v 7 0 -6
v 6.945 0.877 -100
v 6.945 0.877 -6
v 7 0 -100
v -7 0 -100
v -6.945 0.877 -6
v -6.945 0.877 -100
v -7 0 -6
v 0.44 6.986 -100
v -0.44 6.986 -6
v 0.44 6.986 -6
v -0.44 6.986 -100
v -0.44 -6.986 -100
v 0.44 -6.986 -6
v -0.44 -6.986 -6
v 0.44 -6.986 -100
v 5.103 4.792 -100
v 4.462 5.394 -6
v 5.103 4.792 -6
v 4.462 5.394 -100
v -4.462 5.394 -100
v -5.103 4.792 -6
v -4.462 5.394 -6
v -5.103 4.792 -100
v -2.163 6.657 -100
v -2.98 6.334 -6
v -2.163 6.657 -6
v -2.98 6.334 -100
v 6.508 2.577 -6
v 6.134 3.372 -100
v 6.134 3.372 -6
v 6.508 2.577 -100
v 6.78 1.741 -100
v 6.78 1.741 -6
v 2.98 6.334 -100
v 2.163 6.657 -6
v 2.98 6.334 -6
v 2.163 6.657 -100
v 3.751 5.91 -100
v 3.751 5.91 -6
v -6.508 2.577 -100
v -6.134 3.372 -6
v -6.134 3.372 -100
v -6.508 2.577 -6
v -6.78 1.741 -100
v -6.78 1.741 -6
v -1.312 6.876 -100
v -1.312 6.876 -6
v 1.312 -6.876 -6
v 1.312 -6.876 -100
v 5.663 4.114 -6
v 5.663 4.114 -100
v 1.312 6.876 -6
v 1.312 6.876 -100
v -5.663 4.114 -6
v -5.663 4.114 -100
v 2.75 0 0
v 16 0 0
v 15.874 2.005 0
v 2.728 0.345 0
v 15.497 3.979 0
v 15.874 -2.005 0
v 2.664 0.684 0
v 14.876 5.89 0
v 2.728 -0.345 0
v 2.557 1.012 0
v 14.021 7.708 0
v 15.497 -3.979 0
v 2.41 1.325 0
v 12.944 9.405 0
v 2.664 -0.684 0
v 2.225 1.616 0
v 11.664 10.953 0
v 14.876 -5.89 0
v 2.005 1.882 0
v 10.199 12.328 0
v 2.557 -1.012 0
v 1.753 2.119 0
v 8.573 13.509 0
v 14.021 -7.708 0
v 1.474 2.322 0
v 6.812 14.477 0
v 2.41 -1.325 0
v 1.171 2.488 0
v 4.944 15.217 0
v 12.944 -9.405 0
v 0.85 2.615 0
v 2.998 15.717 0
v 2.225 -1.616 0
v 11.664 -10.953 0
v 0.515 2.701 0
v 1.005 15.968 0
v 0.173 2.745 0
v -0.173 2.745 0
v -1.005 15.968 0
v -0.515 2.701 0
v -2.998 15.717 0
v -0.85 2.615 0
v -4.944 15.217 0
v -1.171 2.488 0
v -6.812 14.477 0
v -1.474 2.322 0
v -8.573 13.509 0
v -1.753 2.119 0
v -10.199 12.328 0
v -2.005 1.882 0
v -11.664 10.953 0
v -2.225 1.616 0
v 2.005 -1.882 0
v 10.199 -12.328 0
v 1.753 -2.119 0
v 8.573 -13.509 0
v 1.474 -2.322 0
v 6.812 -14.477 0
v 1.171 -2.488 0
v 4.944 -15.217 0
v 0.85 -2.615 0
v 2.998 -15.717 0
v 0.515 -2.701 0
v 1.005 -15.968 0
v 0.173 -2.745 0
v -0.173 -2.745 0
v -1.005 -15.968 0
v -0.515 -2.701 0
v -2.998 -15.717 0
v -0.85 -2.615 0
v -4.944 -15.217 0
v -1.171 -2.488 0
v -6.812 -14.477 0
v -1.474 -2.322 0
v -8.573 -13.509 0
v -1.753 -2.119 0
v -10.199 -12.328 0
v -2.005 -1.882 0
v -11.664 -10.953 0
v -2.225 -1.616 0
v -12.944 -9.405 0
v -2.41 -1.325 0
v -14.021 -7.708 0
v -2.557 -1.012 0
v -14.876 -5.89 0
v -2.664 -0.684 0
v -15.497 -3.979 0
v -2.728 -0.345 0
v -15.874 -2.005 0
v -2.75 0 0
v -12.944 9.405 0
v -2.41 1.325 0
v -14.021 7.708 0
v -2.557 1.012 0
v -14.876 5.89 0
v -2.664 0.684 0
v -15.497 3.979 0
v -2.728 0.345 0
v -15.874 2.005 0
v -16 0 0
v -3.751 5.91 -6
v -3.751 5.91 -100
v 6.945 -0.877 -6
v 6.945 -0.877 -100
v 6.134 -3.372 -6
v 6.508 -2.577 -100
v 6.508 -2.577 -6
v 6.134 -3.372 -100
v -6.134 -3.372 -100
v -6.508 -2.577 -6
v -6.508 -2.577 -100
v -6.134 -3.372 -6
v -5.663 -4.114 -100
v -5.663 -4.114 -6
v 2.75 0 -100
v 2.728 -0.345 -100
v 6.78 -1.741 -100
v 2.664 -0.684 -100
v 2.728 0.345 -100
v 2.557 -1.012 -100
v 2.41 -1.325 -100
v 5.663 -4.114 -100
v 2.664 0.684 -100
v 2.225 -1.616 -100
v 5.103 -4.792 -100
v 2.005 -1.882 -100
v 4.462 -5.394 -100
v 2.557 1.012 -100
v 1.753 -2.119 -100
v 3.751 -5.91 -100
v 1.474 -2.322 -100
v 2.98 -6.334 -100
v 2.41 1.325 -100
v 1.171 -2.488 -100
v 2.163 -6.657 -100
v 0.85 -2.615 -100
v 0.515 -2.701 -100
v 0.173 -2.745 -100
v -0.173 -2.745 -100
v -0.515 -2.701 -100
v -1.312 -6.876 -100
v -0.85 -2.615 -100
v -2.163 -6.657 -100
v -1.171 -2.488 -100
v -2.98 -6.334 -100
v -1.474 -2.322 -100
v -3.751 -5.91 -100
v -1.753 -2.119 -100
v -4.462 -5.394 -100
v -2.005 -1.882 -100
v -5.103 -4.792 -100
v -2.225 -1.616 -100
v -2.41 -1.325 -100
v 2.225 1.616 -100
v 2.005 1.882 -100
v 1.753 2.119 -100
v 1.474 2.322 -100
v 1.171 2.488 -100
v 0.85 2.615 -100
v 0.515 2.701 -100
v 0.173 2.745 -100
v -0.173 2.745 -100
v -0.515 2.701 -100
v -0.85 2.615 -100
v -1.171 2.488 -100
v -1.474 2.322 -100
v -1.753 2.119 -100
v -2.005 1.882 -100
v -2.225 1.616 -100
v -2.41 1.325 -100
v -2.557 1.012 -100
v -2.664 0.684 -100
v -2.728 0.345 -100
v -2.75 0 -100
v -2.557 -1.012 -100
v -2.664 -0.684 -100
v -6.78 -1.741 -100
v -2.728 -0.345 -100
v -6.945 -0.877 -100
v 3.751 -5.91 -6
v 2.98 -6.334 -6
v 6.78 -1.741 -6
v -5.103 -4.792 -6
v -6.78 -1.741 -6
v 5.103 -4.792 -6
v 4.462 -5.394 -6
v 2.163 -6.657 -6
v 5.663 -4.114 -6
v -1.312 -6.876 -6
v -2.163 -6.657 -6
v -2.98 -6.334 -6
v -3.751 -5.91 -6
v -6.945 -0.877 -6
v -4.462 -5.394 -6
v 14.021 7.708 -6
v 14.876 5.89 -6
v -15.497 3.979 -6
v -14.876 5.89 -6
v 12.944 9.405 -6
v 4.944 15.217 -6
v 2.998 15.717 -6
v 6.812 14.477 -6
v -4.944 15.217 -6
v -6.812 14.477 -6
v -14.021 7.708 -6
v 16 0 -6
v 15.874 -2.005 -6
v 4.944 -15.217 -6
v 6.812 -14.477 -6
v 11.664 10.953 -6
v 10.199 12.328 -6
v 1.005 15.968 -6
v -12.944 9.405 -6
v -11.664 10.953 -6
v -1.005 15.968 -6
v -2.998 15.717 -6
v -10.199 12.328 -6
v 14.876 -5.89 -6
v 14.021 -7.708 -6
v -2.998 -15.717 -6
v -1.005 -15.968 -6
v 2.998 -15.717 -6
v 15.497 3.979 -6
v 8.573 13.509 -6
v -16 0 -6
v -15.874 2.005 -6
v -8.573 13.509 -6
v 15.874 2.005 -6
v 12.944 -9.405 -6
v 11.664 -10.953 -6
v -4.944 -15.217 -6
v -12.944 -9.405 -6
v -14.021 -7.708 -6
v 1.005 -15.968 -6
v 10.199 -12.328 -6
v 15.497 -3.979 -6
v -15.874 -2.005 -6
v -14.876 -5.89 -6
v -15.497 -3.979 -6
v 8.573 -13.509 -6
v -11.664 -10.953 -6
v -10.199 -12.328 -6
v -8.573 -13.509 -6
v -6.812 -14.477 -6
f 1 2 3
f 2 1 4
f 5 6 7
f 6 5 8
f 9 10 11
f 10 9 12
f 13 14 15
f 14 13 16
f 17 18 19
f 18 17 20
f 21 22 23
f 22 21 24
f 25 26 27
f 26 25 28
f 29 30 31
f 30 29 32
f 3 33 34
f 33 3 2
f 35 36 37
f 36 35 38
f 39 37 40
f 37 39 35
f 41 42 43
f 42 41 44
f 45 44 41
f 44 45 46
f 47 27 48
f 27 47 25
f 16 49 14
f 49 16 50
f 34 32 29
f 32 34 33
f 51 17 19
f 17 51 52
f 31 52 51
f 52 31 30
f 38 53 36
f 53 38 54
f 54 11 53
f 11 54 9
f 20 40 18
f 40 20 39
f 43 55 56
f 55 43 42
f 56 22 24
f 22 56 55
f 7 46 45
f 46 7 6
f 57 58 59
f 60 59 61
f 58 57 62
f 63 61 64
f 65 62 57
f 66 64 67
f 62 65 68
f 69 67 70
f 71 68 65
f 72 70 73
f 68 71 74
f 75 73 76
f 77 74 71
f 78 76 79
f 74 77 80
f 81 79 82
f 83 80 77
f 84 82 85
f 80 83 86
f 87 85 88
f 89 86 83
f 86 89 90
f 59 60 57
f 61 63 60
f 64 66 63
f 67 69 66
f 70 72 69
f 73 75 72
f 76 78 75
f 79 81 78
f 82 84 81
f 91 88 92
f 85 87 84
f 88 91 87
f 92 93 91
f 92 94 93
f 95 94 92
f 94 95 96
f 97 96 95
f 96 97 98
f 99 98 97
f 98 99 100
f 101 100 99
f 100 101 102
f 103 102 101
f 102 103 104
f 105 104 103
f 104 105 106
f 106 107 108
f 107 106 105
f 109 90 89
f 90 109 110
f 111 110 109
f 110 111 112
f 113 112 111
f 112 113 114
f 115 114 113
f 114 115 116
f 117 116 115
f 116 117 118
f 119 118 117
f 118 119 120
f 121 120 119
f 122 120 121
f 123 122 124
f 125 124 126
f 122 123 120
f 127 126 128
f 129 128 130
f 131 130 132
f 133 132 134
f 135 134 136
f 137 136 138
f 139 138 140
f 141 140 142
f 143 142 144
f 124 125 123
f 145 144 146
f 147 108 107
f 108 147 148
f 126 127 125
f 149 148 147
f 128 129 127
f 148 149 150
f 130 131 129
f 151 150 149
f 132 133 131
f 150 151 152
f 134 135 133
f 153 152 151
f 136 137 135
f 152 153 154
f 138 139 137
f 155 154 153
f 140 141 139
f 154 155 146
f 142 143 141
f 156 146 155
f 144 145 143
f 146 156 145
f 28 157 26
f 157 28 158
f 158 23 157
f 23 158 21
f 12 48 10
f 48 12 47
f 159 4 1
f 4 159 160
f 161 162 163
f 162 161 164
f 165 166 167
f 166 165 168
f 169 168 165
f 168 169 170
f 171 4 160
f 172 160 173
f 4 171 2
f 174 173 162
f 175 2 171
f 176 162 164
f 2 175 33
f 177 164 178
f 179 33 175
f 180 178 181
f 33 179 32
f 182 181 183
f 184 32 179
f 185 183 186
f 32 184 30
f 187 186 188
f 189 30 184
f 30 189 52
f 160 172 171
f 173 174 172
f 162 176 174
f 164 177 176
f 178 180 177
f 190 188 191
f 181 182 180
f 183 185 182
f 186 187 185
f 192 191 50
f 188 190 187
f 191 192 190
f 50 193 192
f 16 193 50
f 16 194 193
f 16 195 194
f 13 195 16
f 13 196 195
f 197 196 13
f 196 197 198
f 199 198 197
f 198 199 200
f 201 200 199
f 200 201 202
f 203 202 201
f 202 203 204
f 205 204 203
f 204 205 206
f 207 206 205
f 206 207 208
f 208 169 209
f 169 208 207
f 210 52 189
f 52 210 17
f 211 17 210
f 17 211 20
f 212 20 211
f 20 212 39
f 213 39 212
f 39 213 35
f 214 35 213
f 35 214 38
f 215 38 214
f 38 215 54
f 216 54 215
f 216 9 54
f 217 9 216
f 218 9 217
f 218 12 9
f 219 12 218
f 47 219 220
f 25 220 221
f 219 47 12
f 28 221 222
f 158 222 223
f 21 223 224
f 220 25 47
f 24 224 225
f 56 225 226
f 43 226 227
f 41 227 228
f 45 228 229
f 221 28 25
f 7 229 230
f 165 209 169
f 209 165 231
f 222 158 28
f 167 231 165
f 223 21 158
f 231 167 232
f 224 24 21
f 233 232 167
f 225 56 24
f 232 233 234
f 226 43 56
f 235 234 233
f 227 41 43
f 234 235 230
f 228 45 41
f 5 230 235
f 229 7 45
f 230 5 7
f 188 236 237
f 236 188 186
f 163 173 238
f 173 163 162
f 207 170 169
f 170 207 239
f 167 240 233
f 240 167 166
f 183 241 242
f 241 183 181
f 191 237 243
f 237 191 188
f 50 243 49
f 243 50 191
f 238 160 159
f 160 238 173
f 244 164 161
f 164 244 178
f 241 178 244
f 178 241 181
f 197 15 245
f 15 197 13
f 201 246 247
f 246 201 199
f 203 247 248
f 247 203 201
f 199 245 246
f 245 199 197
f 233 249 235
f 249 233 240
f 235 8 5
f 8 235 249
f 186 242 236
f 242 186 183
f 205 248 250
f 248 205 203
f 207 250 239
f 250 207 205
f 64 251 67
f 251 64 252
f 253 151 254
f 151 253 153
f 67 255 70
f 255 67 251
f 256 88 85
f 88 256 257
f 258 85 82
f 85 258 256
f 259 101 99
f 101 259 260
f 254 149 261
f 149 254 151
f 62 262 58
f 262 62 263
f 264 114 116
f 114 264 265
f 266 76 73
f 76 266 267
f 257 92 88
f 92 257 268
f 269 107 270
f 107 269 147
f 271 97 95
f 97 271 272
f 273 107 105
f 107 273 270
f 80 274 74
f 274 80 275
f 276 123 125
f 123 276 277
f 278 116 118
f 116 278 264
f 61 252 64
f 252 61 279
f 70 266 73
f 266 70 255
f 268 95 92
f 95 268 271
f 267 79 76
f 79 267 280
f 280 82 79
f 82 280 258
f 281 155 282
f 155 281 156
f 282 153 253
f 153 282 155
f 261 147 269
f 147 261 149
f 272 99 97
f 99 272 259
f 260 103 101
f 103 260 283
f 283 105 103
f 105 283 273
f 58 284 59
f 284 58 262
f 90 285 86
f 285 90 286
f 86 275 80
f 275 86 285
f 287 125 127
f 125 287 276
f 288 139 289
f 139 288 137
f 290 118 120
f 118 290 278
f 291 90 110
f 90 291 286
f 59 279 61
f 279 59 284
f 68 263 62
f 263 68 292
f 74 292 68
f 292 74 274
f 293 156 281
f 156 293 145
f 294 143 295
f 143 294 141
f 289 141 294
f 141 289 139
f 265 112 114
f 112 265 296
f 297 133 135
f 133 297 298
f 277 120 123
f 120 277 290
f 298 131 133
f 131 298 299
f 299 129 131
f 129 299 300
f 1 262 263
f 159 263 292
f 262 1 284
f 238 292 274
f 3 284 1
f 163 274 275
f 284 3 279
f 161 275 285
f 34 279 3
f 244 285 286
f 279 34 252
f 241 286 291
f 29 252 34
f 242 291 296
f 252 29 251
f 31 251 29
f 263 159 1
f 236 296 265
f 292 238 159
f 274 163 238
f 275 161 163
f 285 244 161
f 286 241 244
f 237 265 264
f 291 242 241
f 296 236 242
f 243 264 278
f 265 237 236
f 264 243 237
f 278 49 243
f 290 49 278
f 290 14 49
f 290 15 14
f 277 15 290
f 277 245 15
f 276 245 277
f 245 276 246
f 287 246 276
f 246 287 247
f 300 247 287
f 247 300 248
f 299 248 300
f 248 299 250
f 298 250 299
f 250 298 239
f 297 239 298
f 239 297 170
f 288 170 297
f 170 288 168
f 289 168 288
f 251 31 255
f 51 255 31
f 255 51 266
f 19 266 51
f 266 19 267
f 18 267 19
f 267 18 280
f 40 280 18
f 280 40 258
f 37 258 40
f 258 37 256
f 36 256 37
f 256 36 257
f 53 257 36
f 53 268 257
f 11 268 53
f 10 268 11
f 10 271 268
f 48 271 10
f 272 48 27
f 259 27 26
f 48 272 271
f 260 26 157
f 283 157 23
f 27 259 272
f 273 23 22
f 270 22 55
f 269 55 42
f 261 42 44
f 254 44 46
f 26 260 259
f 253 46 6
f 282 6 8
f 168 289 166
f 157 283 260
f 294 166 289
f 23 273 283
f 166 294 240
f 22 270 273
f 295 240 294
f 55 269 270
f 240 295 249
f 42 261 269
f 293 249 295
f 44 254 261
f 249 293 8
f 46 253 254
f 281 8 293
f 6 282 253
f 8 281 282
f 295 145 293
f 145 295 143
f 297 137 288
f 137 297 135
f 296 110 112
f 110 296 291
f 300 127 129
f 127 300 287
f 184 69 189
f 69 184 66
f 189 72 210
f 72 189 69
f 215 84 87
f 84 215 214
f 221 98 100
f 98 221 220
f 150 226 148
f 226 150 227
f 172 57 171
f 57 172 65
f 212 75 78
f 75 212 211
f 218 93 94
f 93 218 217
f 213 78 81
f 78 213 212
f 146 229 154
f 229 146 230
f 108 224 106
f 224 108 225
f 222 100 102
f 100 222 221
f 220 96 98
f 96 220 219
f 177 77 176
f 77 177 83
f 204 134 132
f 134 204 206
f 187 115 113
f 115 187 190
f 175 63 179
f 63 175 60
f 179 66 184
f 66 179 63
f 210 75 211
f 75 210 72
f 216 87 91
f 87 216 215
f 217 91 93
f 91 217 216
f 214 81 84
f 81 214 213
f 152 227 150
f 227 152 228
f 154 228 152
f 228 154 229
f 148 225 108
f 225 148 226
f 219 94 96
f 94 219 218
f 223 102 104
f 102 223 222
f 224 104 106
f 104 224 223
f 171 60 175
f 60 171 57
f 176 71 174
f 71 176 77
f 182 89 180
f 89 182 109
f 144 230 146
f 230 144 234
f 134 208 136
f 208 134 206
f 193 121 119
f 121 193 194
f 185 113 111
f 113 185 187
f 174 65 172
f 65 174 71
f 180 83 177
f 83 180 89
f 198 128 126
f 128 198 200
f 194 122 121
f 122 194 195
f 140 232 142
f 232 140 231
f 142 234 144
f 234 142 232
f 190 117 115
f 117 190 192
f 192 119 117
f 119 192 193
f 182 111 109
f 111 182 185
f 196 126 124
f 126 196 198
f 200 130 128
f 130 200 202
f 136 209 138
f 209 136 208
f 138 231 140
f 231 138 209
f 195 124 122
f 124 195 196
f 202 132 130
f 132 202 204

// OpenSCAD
$fn = 50;


difference() {
	union() {
		translate(v = [0, 0, -100.0000000000]) {
			cylinder(h = 100, r = 7.0000000000);
		}
		translate(v = [0, 0, -6.0000000000]) {
			cylinder(h = 6, r = 16.0000000000);
		}
	}
	union() {
		#translate(v = [0, 0, -100]) {
			cylinder(h = 100, r = 2.7500000000);
		}
	}
}
